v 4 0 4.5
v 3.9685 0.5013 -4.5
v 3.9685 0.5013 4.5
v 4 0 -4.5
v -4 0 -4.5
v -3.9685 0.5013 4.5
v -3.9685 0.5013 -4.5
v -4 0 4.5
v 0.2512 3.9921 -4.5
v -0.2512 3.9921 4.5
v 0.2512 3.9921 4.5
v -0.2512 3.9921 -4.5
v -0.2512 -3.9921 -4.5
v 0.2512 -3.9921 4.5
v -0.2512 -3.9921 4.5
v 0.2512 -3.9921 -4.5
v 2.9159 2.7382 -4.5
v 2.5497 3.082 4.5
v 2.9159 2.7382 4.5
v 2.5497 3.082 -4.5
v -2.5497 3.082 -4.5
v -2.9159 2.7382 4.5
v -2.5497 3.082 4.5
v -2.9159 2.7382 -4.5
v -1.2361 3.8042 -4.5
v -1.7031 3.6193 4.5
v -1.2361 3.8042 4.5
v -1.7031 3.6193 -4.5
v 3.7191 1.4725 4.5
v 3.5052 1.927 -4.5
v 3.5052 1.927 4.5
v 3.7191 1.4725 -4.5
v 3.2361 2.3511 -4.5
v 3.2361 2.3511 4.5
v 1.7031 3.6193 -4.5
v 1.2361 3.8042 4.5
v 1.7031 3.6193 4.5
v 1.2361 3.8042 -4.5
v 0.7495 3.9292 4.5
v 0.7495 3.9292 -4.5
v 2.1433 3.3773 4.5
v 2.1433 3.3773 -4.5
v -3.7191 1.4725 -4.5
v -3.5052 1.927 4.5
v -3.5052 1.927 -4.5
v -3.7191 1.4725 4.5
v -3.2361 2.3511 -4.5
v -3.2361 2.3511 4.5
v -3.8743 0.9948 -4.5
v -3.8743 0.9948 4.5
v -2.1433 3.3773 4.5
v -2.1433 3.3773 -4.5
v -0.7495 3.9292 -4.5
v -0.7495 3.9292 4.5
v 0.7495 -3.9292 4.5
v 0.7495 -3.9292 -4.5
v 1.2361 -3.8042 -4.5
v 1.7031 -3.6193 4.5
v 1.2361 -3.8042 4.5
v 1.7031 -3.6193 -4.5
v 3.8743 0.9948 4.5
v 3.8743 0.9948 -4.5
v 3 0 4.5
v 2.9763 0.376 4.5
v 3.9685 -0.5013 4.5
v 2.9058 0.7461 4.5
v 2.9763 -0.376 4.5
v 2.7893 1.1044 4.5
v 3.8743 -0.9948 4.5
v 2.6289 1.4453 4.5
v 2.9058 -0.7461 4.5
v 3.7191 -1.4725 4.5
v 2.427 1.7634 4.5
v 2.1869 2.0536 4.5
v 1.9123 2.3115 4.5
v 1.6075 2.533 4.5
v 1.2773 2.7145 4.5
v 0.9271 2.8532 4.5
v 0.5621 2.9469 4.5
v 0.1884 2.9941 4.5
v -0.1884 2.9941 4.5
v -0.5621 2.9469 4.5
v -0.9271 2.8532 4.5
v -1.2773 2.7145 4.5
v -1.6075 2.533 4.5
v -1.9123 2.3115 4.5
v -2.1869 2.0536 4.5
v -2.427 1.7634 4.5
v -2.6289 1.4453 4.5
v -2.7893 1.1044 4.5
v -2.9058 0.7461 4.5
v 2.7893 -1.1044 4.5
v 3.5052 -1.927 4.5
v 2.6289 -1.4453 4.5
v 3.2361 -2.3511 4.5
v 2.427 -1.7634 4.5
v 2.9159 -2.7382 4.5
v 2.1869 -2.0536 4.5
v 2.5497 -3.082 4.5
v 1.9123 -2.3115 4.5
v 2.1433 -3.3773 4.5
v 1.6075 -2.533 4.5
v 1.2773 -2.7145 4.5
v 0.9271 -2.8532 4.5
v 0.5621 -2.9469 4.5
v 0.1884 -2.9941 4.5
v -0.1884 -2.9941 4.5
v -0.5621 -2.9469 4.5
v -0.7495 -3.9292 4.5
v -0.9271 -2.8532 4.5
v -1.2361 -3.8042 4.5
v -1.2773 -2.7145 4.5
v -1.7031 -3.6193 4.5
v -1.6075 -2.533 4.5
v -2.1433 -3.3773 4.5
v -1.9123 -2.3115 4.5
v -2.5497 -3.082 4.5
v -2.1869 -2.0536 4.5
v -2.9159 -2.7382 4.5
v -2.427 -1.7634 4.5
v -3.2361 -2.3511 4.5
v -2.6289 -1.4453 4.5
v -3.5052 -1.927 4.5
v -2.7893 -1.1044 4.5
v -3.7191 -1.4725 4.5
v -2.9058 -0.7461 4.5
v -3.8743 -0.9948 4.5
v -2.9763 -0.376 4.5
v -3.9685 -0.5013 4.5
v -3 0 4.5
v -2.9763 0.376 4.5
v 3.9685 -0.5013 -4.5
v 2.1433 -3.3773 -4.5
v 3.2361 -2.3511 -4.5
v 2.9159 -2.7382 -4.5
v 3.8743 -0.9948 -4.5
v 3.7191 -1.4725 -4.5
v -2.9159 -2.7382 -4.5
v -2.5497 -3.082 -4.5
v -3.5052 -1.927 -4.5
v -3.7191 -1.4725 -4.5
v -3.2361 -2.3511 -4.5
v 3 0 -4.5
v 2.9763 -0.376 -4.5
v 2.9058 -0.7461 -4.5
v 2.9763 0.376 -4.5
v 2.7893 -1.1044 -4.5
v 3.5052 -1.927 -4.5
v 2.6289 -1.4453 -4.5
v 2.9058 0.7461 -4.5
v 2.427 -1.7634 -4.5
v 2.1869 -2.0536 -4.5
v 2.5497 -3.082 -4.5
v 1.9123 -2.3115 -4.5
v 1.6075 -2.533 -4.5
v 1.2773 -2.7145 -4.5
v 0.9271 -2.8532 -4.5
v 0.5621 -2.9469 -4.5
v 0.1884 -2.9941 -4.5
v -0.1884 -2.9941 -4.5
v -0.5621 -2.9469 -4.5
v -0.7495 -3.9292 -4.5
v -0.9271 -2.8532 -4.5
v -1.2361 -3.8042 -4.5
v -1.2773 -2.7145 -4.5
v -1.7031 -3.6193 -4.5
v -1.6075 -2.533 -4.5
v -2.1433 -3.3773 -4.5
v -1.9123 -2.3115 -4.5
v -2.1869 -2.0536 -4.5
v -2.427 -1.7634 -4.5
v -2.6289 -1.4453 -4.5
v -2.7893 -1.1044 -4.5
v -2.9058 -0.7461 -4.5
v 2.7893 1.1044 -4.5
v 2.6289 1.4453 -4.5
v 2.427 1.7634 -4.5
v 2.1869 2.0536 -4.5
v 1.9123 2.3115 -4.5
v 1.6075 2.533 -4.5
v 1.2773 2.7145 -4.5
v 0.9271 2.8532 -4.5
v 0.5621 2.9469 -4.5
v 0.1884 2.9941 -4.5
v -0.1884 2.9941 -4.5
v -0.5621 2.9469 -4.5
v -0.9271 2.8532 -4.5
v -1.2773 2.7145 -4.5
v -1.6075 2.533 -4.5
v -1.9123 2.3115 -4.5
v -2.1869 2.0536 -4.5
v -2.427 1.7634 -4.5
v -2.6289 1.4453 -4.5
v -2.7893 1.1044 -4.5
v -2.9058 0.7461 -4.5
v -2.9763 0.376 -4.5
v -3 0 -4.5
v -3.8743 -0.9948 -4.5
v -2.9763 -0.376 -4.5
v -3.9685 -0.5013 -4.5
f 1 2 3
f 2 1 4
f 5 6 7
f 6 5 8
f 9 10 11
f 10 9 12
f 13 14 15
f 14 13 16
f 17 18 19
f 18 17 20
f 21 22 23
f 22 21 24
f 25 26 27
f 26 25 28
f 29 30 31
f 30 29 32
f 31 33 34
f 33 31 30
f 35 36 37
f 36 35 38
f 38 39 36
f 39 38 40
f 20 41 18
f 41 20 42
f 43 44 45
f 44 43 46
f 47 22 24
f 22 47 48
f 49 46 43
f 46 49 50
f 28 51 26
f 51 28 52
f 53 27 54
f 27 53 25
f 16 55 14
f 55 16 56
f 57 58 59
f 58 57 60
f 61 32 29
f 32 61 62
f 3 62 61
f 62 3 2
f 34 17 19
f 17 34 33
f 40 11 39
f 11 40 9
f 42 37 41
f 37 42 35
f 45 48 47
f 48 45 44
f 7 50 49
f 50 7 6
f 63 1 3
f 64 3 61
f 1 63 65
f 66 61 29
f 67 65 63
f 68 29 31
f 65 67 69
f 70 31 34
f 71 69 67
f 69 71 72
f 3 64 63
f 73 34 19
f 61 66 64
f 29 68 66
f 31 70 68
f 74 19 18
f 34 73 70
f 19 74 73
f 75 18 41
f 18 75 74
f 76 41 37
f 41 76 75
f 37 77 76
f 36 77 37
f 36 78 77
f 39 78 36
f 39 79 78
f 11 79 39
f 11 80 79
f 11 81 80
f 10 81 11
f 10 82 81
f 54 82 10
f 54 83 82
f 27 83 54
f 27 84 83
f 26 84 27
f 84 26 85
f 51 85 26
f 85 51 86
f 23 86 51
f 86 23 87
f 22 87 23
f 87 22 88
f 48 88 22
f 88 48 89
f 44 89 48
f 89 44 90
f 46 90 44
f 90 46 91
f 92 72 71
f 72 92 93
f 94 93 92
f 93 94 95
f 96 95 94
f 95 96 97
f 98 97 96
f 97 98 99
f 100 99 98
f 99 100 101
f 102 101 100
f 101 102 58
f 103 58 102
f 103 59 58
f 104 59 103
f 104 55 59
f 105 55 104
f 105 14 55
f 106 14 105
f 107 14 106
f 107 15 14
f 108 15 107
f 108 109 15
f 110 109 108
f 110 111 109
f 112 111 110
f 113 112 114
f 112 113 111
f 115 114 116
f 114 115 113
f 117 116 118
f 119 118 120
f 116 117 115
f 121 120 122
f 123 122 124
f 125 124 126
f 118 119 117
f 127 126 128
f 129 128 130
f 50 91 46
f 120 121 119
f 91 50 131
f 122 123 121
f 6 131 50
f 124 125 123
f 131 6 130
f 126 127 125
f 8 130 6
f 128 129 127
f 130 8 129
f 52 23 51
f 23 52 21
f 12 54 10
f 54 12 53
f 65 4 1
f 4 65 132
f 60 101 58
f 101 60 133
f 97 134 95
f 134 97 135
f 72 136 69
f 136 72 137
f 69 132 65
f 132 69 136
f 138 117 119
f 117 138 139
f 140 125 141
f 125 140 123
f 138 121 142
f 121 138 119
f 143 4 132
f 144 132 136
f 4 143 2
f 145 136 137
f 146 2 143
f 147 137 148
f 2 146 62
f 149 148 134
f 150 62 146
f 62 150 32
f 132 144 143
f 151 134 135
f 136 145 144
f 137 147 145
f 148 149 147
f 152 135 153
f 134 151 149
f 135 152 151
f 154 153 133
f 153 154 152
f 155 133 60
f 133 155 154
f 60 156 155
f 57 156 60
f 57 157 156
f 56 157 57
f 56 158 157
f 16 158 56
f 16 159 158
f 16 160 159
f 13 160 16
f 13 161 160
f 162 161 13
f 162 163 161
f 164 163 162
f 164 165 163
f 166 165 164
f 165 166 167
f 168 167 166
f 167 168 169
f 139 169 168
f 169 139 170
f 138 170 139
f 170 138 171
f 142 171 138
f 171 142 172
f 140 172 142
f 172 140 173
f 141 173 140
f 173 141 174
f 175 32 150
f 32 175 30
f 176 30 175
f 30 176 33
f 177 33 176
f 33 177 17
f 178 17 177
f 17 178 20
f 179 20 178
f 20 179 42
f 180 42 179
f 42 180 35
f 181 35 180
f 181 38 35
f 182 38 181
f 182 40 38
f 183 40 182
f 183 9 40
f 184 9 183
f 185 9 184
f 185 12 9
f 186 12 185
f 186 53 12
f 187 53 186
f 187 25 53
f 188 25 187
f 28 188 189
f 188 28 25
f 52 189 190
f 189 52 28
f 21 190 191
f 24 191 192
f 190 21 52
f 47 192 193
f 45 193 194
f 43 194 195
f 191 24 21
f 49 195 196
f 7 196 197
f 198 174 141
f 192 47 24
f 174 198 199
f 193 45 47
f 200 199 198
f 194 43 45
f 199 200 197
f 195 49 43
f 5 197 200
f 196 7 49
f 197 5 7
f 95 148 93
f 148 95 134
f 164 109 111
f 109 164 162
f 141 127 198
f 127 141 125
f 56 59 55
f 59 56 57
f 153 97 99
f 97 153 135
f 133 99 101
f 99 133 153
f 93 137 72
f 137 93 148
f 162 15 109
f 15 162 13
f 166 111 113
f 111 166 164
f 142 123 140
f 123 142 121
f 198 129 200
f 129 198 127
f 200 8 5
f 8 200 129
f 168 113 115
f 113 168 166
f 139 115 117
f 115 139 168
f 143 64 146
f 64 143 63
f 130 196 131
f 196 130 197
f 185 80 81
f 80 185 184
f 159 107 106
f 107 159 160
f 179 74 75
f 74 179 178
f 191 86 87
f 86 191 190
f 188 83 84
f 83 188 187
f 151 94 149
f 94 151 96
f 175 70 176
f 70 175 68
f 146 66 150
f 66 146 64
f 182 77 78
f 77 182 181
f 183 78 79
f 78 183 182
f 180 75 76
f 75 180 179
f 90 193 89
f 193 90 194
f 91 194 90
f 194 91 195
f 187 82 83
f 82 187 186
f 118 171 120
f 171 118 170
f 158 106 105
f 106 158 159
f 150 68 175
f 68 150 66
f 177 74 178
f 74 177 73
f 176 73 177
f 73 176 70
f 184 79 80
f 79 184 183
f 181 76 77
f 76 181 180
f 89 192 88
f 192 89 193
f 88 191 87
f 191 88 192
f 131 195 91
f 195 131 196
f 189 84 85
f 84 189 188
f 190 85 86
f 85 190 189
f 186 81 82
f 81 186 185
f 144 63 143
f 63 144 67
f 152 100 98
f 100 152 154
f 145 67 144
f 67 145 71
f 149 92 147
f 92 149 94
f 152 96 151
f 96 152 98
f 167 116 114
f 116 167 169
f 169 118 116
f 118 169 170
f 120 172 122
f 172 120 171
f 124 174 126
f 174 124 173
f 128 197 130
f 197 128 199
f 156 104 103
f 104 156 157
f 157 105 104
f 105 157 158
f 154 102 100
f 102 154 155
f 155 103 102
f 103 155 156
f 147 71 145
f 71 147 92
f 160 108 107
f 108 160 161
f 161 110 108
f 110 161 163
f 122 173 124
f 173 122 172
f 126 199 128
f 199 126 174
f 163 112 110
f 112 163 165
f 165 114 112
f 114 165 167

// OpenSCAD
$fn = 50;


difference() {
	union() {
		translate(v = [0, 0, -4.5000000000]) {
			cylinder(h = 9, r = 4.0000000000);
		}
	}
	union() {
		translate(v = [0, 0, -100.0000000000]) {
			cylinder(h = 200, r = 3);
		}
	}
}
